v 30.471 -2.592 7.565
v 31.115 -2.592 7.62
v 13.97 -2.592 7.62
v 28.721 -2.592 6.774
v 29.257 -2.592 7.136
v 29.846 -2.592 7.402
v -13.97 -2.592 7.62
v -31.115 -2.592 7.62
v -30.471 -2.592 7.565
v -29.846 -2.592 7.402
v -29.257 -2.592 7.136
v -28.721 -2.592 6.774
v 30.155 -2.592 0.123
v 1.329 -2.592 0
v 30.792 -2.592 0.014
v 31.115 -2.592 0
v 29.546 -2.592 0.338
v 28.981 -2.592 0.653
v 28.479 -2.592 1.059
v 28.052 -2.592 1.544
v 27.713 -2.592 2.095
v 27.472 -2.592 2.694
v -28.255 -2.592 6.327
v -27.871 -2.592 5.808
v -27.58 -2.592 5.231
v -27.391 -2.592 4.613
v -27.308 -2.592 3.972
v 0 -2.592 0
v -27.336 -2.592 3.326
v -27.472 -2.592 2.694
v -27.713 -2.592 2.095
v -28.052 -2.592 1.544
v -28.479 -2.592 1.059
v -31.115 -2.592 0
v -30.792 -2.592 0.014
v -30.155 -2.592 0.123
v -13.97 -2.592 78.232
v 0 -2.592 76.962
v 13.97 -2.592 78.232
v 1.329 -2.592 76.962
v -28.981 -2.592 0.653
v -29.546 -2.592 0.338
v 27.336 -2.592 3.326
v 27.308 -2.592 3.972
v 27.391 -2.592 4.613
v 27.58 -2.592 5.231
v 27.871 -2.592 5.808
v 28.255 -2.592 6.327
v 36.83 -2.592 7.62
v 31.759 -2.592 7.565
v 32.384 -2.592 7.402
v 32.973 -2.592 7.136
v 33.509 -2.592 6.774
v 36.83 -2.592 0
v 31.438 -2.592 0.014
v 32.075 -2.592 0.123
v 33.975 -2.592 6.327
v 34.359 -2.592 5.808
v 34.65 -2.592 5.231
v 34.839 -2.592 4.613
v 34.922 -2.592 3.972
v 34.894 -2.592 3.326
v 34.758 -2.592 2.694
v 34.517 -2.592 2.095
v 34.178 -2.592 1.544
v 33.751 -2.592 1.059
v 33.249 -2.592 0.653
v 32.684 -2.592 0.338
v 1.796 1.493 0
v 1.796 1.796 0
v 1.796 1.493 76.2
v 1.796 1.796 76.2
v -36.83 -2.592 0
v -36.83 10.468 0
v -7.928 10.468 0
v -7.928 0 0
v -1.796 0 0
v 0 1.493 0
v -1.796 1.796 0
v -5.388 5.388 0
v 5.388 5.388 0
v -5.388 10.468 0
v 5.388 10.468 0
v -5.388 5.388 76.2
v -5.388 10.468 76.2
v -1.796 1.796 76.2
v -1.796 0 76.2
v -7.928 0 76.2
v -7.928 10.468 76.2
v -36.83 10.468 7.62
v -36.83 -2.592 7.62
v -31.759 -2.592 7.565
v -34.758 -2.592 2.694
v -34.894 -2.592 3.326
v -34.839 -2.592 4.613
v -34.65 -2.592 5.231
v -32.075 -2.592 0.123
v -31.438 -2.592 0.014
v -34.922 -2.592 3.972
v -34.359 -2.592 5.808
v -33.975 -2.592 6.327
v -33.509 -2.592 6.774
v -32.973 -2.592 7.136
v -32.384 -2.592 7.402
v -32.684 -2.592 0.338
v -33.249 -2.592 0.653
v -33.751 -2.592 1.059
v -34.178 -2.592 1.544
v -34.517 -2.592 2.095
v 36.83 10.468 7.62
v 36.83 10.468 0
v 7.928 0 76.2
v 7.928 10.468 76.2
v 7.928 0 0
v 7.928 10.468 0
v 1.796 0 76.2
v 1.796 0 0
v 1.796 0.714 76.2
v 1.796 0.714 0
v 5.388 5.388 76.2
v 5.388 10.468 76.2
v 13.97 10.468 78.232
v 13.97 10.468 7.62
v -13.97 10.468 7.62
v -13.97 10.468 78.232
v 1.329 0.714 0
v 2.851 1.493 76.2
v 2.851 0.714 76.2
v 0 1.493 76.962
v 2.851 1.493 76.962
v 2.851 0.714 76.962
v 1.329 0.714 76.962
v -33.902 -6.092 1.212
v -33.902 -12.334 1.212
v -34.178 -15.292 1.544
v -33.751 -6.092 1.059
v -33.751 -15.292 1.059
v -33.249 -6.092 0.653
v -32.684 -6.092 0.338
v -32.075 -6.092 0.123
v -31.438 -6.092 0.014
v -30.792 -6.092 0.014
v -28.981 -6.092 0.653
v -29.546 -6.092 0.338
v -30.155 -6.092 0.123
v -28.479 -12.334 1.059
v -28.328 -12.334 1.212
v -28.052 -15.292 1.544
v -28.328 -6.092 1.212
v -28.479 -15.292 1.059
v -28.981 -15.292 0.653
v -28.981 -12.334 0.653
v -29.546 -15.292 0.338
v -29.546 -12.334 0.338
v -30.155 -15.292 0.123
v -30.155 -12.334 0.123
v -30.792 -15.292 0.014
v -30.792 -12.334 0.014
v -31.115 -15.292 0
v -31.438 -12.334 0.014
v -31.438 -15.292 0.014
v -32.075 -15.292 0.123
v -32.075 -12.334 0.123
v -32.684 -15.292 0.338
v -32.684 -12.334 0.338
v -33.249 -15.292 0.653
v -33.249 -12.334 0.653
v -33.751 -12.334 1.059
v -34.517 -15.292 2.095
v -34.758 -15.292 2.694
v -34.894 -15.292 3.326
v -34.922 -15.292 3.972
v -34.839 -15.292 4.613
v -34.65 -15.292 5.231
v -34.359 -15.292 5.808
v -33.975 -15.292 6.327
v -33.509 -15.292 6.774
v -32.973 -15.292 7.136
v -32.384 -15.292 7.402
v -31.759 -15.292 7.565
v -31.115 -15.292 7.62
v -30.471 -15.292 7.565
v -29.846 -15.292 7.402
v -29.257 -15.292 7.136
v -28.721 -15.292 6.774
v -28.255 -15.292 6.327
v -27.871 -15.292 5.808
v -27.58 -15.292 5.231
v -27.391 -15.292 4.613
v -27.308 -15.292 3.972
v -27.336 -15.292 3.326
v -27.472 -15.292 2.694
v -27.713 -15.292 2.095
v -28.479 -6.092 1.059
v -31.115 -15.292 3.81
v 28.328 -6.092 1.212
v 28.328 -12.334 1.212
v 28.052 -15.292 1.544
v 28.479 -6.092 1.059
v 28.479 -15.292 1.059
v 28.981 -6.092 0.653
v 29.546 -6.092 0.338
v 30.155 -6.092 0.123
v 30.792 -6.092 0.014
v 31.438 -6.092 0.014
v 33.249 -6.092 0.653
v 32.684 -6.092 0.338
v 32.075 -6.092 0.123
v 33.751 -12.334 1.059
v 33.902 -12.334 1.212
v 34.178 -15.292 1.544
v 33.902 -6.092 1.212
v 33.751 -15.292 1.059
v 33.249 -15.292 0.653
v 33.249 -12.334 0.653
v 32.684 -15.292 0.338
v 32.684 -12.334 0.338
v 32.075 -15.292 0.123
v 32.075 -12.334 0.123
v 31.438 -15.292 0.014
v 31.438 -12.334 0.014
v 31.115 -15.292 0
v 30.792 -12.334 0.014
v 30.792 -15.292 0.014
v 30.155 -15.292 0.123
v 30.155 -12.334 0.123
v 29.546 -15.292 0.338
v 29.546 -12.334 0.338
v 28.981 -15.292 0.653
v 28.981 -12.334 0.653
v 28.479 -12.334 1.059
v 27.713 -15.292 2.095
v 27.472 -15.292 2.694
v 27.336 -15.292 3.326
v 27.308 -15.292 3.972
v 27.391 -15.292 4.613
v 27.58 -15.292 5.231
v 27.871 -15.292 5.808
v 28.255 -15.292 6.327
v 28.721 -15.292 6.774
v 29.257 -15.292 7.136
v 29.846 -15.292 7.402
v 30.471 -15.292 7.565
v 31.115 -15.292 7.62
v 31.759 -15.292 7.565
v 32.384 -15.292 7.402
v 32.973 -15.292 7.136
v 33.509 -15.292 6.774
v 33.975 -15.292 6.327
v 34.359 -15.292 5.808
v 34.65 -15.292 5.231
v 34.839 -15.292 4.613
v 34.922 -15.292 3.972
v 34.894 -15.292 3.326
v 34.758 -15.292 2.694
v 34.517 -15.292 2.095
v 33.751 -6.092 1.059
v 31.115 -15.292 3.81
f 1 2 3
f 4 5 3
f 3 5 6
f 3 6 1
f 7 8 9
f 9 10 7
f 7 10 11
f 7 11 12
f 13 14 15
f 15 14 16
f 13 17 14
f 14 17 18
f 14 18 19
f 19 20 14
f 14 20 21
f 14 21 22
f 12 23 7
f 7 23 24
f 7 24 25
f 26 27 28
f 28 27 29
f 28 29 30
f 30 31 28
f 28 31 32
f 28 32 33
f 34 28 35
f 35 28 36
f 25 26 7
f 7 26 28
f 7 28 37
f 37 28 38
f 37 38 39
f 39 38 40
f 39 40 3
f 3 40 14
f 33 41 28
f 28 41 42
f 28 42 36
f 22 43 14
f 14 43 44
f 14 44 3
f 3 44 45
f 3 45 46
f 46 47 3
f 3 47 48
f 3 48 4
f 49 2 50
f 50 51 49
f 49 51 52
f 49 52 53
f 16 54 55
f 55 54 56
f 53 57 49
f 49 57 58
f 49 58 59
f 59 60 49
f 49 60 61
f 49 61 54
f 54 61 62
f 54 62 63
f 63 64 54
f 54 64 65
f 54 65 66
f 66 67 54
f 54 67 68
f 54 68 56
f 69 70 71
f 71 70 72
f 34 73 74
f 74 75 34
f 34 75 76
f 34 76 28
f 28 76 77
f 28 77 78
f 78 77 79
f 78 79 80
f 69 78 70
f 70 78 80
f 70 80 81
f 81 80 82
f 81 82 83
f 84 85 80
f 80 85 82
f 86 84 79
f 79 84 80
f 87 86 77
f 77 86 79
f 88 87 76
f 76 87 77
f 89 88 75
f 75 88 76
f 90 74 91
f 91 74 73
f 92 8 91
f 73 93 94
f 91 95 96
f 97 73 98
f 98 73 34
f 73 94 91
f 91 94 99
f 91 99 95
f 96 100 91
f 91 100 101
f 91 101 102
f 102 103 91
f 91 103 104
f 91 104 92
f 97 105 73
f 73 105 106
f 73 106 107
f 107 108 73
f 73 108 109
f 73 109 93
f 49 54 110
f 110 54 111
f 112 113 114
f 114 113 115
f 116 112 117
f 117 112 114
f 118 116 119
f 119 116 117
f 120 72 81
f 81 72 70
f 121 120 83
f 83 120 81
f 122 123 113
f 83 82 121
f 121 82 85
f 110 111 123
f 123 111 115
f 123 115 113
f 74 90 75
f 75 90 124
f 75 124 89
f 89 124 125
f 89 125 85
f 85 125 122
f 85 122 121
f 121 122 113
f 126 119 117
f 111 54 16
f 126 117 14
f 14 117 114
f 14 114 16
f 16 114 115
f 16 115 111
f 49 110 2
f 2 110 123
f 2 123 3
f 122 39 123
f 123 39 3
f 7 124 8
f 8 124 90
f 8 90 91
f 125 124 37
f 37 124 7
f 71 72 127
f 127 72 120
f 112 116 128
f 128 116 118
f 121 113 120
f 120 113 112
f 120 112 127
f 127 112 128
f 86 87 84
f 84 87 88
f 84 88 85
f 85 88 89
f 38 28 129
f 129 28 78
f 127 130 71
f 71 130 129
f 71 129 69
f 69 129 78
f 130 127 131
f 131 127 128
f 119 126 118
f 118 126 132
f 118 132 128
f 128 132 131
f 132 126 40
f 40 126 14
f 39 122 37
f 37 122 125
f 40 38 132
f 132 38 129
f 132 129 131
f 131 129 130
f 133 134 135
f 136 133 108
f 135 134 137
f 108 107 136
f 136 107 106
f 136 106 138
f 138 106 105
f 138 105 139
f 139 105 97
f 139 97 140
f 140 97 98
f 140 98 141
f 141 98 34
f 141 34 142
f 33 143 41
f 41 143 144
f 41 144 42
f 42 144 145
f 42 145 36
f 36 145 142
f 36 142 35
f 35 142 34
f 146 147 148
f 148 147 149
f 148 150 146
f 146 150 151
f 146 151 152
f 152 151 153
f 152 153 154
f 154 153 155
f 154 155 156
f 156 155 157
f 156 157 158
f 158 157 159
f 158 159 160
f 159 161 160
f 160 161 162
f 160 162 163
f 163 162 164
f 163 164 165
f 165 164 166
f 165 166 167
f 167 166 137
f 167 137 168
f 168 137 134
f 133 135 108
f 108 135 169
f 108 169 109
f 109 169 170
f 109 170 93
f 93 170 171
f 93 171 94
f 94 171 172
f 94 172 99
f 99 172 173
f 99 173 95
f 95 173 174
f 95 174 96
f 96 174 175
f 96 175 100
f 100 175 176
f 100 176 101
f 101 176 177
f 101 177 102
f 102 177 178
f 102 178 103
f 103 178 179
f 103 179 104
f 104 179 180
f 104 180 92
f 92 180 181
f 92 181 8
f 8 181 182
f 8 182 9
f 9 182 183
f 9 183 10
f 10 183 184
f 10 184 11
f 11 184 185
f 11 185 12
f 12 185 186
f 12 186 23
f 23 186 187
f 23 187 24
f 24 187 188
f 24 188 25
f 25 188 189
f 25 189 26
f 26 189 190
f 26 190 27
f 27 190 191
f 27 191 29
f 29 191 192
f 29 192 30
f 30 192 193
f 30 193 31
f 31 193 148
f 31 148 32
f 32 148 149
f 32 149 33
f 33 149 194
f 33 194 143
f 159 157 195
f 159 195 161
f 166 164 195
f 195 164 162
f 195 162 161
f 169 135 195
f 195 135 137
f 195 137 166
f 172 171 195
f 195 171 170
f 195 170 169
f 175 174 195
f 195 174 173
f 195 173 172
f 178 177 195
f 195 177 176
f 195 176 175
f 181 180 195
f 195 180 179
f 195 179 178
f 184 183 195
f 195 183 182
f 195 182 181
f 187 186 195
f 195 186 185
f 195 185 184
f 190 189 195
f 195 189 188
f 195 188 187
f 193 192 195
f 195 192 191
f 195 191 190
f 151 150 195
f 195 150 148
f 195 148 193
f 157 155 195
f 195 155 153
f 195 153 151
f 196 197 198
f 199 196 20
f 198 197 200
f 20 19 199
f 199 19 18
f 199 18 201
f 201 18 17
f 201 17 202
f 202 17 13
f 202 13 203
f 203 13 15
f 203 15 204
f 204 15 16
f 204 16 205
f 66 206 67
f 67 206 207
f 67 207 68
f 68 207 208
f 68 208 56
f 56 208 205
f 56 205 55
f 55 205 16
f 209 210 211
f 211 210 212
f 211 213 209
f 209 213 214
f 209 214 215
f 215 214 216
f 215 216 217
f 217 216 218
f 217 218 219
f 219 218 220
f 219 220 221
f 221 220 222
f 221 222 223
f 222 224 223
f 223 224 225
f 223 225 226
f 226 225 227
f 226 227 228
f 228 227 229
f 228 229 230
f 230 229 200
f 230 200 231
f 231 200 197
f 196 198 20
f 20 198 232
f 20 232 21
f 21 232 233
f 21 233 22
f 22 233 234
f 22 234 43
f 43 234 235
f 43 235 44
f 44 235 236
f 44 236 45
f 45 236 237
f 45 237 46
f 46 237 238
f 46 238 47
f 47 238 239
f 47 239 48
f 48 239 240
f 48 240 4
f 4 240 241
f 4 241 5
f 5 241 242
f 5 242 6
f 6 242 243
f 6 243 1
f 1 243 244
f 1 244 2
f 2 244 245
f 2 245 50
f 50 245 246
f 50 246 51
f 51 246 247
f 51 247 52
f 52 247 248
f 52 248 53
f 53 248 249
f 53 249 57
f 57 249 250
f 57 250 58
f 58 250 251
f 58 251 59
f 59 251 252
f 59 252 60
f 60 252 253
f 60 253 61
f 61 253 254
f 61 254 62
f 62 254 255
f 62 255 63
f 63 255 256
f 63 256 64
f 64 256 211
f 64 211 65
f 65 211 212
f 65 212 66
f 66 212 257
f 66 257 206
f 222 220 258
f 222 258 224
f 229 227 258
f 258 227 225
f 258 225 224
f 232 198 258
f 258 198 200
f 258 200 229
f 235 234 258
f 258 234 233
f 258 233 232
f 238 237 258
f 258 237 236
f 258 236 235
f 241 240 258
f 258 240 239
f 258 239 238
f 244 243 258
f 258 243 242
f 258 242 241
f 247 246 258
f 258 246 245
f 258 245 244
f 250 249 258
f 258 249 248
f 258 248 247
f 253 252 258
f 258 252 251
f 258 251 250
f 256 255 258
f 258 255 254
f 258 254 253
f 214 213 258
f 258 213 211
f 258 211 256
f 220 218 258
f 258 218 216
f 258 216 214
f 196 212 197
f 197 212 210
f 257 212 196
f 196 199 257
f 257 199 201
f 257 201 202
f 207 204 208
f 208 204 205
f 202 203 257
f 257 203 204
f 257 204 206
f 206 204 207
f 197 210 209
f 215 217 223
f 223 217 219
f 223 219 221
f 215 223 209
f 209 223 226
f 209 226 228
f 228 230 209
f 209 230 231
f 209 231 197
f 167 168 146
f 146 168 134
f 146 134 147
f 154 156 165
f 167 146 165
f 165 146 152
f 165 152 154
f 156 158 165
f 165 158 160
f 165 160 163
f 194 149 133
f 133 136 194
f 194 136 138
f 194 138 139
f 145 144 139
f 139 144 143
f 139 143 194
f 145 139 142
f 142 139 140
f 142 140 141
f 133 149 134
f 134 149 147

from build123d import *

# Parameters (mm, degrees)
BOSS_EXTRUDE1_DEPTH     = 76.2
SKETCH3_W               = 22.86
SKETCH3_H               = 68.58
CUT_EXTRUDE1_DEPTH      = 76.2
SKETCH4_W               = 27.94
SKETCH4_H               = 13.05965896
BOSS_EXTRUDE2_DEPTH     = 0.762
CUT_EXTRUDE2_DEPTH      = 99.822
SKETCH7_W               = 27.94
SKETCH7_H               = 13.05965896
BOSS_EXTRUDE3_DEPTH     = 1.27
SKETCH8_R               = 3.81
BOSS_EXTRUDE4_DEPTH     = 12.7
CUT_EXTRUDE3_DEPTH      = 116.55549125
CUT_EXTRUDE3_DEPTH_BACK = 116.55549125
SKETCH10_W              = 1.211973452
SKETCH10_H              = 6.241961148


with BuildPart() as part:
    # Sketch2 → Boss-Extrude1 (new body)
    with BuildSketch(Plane.XY):
        Polygon((-1.796051224, 1.796051224), (-5.388153673, 5.388153673), (-5.388153673, 10.468153673), (5.388153673, 10.468153673), (5.388153673, 5.388153673), (1.796051224, 1.796051224), (1.796051224, 0), (5.388153673, 0), (7.928153673, 0), (7.928153673, 10.468153673), (19.358153673, 10.468153673), (31.75, 10.468153673), (36.83, 10.468153673), (36.83, -2.591505287), (31.75, -2.591505287), (-31.75, -2.591505287), (-36.83, -2.591505287), (-36.83, 10.468153673), (-31.75, 10.468153673), (-19.358153673, 10.468153673), (-7.928153673, 10.468153673), (-7.928153673, 0), (-1.796051224, 0), align=None)
    extrude(amount=BOSS_EXTRUDE1_DEPTH)

    # Sketch3 → Cut-Extrude1 (cut)
    with BuildSketch(Plane(origin=(0, 10.468153673, 0), x_dir=(1, 0, 0), z_dir=(0, 1, 0))):
        with Locations((-25.4, -41.91)):
            Rectangle(SKETCH3_W, SKETCH3_H)
        with Locations((25.4, -41.91)):
            Rectangle(SKETCH3_W, SKETCH3_H)
    extrude(amount=-CUT_EXTRUDE1_DEPTH, mode=Mode.SUBTRACT)

    # Sketch4 → Boss-Extrude2 (add)
    with BuildSketch(Plane.XY.offset(76.2)):
        with Locations((0, 3.938324193)):
            Rectangle(SKETCH4_W, SKETCH4_H)
    extrude(amount=BOSS_EXTRUDE2_DEPTH)

    # Sketch5 → Cut-Extrude2 (cut)
    with BuildSketch(Plane.XY.offset(76.962)):
        Polygon((1.329001146, -2.591505287), (1.329001146, 0.714117771), (2.850653855, 0.714117771), (2.850653855, 1.492637762), (1.329001146, 1.492637762), (0, 1.492637762), (0, 0.714117771), (0, -2.591505287), align=None)
    extrude(amount=-CUT_EXTRUDE2_DEPTH, mode=Mode.SUBTRACT)

    # Sketch7 → Boss-Extrude3 (add)
    with BuildSketch(Plane.XY.offset(76.962)):
        with Locations((0, 3.938324193)):
            Rectangle(SKETCH7_W, SKETCH7_H)
    extrude(amount=BOSS_EXTRUDE3_DEPTH)

    # Sketch8 → Boss-Extrude4 (add)
    with BuildSketch(Plane.XZ.offset(2.591505287)):
        with Locations(Location((-31.115, 3.81, 0), (0, 0, 270))):
            Circle(SKETCH8_R)
        with Locations(Location((31.115, 3.81, 0), (0, 0, 270))):
            Circle(SKETCH8_R)
    extrude(amount=BOSS_EXTRUDE4_DEPTH)

    # Sketch10 → Cut-Extrude3 (cut, two sides: drawn at the far end of the back side and taken through both)
    with BuildSketch(Plane.ZY.offset(46.83).offset(-CUT_EXTRUDE3_DEPTH_BACK)):
        with Locations((0.605986726, -9.213101257)):
            Rectangle(SKETCH10_W, SKETCH10_H)
    extrude(amount=CUT_EXTRUDE3_DEPTH + CUT_EXTRUDE3_DEPTH_BACK, mode=Mode.SUBTRACT)


solid = part.part
